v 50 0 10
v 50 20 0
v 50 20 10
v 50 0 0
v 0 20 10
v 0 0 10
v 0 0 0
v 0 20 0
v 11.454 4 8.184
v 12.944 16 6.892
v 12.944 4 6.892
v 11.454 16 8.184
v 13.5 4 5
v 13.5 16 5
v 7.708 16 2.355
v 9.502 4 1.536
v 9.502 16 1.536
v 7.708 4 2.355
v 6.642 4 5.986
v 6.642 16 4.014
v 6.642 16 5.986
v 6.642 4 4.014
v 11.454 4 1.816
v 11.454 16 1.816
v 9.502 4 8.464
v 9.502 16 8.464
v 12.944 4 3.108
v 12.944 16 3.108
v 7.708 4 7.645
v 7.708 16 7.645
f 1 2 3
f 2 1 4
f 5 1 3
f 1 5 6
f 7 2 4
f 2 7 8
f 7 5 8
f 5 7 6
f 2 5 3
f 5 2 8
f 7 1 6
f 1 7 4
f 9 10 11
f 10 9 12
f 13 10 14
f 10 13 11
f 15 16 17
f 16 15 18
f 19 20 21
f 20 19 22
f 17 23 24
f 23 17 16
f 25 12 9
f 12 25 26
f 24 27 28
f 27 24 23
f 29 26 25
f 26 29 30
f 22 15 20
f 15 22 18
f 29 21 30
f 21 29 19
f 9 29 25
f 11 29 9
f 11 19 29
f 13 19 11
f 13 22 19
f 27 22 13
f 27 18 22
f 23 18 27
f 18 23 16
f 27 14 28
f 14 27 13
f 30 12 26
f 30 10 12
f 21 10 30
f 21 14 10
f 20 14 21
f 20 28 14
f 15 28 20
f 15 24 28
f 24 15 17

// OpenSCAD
// Dimensions for the rectangular blocks
block_length = 50;  // length of block
block_width = 20;   // width of block
block_height = 10;  // height of block
hole_diameter = 7;  // slightly increased diameter of holes
hole_spacing = 35;  // adjusted distance to move holes towards one end

module rectangular_block_with_holes() {
    // Create the block
    difference() {
        // Main block
        cube([block_length, block_width, block_height]);

        // Holes in the block
        translate([block_length/2 - hole_spacing, block_width/2, block_height/2])
            rotate([90, 0, 0])  // Align the holes vertically
            cylinder(h = block_height + 2, r = hole_diameter / 2, center = true);

        translate([block_length/2 + hole_spacing - block_length, block_width/2, block_height/2])
            rotate([90, 0, 0])  // Align the holes vertically
            cylinder(h = block_height + 2, r = hole_diameter / 2, center = true);
    }
}

// Single block for the original model
rectangular_block_with_holes();
